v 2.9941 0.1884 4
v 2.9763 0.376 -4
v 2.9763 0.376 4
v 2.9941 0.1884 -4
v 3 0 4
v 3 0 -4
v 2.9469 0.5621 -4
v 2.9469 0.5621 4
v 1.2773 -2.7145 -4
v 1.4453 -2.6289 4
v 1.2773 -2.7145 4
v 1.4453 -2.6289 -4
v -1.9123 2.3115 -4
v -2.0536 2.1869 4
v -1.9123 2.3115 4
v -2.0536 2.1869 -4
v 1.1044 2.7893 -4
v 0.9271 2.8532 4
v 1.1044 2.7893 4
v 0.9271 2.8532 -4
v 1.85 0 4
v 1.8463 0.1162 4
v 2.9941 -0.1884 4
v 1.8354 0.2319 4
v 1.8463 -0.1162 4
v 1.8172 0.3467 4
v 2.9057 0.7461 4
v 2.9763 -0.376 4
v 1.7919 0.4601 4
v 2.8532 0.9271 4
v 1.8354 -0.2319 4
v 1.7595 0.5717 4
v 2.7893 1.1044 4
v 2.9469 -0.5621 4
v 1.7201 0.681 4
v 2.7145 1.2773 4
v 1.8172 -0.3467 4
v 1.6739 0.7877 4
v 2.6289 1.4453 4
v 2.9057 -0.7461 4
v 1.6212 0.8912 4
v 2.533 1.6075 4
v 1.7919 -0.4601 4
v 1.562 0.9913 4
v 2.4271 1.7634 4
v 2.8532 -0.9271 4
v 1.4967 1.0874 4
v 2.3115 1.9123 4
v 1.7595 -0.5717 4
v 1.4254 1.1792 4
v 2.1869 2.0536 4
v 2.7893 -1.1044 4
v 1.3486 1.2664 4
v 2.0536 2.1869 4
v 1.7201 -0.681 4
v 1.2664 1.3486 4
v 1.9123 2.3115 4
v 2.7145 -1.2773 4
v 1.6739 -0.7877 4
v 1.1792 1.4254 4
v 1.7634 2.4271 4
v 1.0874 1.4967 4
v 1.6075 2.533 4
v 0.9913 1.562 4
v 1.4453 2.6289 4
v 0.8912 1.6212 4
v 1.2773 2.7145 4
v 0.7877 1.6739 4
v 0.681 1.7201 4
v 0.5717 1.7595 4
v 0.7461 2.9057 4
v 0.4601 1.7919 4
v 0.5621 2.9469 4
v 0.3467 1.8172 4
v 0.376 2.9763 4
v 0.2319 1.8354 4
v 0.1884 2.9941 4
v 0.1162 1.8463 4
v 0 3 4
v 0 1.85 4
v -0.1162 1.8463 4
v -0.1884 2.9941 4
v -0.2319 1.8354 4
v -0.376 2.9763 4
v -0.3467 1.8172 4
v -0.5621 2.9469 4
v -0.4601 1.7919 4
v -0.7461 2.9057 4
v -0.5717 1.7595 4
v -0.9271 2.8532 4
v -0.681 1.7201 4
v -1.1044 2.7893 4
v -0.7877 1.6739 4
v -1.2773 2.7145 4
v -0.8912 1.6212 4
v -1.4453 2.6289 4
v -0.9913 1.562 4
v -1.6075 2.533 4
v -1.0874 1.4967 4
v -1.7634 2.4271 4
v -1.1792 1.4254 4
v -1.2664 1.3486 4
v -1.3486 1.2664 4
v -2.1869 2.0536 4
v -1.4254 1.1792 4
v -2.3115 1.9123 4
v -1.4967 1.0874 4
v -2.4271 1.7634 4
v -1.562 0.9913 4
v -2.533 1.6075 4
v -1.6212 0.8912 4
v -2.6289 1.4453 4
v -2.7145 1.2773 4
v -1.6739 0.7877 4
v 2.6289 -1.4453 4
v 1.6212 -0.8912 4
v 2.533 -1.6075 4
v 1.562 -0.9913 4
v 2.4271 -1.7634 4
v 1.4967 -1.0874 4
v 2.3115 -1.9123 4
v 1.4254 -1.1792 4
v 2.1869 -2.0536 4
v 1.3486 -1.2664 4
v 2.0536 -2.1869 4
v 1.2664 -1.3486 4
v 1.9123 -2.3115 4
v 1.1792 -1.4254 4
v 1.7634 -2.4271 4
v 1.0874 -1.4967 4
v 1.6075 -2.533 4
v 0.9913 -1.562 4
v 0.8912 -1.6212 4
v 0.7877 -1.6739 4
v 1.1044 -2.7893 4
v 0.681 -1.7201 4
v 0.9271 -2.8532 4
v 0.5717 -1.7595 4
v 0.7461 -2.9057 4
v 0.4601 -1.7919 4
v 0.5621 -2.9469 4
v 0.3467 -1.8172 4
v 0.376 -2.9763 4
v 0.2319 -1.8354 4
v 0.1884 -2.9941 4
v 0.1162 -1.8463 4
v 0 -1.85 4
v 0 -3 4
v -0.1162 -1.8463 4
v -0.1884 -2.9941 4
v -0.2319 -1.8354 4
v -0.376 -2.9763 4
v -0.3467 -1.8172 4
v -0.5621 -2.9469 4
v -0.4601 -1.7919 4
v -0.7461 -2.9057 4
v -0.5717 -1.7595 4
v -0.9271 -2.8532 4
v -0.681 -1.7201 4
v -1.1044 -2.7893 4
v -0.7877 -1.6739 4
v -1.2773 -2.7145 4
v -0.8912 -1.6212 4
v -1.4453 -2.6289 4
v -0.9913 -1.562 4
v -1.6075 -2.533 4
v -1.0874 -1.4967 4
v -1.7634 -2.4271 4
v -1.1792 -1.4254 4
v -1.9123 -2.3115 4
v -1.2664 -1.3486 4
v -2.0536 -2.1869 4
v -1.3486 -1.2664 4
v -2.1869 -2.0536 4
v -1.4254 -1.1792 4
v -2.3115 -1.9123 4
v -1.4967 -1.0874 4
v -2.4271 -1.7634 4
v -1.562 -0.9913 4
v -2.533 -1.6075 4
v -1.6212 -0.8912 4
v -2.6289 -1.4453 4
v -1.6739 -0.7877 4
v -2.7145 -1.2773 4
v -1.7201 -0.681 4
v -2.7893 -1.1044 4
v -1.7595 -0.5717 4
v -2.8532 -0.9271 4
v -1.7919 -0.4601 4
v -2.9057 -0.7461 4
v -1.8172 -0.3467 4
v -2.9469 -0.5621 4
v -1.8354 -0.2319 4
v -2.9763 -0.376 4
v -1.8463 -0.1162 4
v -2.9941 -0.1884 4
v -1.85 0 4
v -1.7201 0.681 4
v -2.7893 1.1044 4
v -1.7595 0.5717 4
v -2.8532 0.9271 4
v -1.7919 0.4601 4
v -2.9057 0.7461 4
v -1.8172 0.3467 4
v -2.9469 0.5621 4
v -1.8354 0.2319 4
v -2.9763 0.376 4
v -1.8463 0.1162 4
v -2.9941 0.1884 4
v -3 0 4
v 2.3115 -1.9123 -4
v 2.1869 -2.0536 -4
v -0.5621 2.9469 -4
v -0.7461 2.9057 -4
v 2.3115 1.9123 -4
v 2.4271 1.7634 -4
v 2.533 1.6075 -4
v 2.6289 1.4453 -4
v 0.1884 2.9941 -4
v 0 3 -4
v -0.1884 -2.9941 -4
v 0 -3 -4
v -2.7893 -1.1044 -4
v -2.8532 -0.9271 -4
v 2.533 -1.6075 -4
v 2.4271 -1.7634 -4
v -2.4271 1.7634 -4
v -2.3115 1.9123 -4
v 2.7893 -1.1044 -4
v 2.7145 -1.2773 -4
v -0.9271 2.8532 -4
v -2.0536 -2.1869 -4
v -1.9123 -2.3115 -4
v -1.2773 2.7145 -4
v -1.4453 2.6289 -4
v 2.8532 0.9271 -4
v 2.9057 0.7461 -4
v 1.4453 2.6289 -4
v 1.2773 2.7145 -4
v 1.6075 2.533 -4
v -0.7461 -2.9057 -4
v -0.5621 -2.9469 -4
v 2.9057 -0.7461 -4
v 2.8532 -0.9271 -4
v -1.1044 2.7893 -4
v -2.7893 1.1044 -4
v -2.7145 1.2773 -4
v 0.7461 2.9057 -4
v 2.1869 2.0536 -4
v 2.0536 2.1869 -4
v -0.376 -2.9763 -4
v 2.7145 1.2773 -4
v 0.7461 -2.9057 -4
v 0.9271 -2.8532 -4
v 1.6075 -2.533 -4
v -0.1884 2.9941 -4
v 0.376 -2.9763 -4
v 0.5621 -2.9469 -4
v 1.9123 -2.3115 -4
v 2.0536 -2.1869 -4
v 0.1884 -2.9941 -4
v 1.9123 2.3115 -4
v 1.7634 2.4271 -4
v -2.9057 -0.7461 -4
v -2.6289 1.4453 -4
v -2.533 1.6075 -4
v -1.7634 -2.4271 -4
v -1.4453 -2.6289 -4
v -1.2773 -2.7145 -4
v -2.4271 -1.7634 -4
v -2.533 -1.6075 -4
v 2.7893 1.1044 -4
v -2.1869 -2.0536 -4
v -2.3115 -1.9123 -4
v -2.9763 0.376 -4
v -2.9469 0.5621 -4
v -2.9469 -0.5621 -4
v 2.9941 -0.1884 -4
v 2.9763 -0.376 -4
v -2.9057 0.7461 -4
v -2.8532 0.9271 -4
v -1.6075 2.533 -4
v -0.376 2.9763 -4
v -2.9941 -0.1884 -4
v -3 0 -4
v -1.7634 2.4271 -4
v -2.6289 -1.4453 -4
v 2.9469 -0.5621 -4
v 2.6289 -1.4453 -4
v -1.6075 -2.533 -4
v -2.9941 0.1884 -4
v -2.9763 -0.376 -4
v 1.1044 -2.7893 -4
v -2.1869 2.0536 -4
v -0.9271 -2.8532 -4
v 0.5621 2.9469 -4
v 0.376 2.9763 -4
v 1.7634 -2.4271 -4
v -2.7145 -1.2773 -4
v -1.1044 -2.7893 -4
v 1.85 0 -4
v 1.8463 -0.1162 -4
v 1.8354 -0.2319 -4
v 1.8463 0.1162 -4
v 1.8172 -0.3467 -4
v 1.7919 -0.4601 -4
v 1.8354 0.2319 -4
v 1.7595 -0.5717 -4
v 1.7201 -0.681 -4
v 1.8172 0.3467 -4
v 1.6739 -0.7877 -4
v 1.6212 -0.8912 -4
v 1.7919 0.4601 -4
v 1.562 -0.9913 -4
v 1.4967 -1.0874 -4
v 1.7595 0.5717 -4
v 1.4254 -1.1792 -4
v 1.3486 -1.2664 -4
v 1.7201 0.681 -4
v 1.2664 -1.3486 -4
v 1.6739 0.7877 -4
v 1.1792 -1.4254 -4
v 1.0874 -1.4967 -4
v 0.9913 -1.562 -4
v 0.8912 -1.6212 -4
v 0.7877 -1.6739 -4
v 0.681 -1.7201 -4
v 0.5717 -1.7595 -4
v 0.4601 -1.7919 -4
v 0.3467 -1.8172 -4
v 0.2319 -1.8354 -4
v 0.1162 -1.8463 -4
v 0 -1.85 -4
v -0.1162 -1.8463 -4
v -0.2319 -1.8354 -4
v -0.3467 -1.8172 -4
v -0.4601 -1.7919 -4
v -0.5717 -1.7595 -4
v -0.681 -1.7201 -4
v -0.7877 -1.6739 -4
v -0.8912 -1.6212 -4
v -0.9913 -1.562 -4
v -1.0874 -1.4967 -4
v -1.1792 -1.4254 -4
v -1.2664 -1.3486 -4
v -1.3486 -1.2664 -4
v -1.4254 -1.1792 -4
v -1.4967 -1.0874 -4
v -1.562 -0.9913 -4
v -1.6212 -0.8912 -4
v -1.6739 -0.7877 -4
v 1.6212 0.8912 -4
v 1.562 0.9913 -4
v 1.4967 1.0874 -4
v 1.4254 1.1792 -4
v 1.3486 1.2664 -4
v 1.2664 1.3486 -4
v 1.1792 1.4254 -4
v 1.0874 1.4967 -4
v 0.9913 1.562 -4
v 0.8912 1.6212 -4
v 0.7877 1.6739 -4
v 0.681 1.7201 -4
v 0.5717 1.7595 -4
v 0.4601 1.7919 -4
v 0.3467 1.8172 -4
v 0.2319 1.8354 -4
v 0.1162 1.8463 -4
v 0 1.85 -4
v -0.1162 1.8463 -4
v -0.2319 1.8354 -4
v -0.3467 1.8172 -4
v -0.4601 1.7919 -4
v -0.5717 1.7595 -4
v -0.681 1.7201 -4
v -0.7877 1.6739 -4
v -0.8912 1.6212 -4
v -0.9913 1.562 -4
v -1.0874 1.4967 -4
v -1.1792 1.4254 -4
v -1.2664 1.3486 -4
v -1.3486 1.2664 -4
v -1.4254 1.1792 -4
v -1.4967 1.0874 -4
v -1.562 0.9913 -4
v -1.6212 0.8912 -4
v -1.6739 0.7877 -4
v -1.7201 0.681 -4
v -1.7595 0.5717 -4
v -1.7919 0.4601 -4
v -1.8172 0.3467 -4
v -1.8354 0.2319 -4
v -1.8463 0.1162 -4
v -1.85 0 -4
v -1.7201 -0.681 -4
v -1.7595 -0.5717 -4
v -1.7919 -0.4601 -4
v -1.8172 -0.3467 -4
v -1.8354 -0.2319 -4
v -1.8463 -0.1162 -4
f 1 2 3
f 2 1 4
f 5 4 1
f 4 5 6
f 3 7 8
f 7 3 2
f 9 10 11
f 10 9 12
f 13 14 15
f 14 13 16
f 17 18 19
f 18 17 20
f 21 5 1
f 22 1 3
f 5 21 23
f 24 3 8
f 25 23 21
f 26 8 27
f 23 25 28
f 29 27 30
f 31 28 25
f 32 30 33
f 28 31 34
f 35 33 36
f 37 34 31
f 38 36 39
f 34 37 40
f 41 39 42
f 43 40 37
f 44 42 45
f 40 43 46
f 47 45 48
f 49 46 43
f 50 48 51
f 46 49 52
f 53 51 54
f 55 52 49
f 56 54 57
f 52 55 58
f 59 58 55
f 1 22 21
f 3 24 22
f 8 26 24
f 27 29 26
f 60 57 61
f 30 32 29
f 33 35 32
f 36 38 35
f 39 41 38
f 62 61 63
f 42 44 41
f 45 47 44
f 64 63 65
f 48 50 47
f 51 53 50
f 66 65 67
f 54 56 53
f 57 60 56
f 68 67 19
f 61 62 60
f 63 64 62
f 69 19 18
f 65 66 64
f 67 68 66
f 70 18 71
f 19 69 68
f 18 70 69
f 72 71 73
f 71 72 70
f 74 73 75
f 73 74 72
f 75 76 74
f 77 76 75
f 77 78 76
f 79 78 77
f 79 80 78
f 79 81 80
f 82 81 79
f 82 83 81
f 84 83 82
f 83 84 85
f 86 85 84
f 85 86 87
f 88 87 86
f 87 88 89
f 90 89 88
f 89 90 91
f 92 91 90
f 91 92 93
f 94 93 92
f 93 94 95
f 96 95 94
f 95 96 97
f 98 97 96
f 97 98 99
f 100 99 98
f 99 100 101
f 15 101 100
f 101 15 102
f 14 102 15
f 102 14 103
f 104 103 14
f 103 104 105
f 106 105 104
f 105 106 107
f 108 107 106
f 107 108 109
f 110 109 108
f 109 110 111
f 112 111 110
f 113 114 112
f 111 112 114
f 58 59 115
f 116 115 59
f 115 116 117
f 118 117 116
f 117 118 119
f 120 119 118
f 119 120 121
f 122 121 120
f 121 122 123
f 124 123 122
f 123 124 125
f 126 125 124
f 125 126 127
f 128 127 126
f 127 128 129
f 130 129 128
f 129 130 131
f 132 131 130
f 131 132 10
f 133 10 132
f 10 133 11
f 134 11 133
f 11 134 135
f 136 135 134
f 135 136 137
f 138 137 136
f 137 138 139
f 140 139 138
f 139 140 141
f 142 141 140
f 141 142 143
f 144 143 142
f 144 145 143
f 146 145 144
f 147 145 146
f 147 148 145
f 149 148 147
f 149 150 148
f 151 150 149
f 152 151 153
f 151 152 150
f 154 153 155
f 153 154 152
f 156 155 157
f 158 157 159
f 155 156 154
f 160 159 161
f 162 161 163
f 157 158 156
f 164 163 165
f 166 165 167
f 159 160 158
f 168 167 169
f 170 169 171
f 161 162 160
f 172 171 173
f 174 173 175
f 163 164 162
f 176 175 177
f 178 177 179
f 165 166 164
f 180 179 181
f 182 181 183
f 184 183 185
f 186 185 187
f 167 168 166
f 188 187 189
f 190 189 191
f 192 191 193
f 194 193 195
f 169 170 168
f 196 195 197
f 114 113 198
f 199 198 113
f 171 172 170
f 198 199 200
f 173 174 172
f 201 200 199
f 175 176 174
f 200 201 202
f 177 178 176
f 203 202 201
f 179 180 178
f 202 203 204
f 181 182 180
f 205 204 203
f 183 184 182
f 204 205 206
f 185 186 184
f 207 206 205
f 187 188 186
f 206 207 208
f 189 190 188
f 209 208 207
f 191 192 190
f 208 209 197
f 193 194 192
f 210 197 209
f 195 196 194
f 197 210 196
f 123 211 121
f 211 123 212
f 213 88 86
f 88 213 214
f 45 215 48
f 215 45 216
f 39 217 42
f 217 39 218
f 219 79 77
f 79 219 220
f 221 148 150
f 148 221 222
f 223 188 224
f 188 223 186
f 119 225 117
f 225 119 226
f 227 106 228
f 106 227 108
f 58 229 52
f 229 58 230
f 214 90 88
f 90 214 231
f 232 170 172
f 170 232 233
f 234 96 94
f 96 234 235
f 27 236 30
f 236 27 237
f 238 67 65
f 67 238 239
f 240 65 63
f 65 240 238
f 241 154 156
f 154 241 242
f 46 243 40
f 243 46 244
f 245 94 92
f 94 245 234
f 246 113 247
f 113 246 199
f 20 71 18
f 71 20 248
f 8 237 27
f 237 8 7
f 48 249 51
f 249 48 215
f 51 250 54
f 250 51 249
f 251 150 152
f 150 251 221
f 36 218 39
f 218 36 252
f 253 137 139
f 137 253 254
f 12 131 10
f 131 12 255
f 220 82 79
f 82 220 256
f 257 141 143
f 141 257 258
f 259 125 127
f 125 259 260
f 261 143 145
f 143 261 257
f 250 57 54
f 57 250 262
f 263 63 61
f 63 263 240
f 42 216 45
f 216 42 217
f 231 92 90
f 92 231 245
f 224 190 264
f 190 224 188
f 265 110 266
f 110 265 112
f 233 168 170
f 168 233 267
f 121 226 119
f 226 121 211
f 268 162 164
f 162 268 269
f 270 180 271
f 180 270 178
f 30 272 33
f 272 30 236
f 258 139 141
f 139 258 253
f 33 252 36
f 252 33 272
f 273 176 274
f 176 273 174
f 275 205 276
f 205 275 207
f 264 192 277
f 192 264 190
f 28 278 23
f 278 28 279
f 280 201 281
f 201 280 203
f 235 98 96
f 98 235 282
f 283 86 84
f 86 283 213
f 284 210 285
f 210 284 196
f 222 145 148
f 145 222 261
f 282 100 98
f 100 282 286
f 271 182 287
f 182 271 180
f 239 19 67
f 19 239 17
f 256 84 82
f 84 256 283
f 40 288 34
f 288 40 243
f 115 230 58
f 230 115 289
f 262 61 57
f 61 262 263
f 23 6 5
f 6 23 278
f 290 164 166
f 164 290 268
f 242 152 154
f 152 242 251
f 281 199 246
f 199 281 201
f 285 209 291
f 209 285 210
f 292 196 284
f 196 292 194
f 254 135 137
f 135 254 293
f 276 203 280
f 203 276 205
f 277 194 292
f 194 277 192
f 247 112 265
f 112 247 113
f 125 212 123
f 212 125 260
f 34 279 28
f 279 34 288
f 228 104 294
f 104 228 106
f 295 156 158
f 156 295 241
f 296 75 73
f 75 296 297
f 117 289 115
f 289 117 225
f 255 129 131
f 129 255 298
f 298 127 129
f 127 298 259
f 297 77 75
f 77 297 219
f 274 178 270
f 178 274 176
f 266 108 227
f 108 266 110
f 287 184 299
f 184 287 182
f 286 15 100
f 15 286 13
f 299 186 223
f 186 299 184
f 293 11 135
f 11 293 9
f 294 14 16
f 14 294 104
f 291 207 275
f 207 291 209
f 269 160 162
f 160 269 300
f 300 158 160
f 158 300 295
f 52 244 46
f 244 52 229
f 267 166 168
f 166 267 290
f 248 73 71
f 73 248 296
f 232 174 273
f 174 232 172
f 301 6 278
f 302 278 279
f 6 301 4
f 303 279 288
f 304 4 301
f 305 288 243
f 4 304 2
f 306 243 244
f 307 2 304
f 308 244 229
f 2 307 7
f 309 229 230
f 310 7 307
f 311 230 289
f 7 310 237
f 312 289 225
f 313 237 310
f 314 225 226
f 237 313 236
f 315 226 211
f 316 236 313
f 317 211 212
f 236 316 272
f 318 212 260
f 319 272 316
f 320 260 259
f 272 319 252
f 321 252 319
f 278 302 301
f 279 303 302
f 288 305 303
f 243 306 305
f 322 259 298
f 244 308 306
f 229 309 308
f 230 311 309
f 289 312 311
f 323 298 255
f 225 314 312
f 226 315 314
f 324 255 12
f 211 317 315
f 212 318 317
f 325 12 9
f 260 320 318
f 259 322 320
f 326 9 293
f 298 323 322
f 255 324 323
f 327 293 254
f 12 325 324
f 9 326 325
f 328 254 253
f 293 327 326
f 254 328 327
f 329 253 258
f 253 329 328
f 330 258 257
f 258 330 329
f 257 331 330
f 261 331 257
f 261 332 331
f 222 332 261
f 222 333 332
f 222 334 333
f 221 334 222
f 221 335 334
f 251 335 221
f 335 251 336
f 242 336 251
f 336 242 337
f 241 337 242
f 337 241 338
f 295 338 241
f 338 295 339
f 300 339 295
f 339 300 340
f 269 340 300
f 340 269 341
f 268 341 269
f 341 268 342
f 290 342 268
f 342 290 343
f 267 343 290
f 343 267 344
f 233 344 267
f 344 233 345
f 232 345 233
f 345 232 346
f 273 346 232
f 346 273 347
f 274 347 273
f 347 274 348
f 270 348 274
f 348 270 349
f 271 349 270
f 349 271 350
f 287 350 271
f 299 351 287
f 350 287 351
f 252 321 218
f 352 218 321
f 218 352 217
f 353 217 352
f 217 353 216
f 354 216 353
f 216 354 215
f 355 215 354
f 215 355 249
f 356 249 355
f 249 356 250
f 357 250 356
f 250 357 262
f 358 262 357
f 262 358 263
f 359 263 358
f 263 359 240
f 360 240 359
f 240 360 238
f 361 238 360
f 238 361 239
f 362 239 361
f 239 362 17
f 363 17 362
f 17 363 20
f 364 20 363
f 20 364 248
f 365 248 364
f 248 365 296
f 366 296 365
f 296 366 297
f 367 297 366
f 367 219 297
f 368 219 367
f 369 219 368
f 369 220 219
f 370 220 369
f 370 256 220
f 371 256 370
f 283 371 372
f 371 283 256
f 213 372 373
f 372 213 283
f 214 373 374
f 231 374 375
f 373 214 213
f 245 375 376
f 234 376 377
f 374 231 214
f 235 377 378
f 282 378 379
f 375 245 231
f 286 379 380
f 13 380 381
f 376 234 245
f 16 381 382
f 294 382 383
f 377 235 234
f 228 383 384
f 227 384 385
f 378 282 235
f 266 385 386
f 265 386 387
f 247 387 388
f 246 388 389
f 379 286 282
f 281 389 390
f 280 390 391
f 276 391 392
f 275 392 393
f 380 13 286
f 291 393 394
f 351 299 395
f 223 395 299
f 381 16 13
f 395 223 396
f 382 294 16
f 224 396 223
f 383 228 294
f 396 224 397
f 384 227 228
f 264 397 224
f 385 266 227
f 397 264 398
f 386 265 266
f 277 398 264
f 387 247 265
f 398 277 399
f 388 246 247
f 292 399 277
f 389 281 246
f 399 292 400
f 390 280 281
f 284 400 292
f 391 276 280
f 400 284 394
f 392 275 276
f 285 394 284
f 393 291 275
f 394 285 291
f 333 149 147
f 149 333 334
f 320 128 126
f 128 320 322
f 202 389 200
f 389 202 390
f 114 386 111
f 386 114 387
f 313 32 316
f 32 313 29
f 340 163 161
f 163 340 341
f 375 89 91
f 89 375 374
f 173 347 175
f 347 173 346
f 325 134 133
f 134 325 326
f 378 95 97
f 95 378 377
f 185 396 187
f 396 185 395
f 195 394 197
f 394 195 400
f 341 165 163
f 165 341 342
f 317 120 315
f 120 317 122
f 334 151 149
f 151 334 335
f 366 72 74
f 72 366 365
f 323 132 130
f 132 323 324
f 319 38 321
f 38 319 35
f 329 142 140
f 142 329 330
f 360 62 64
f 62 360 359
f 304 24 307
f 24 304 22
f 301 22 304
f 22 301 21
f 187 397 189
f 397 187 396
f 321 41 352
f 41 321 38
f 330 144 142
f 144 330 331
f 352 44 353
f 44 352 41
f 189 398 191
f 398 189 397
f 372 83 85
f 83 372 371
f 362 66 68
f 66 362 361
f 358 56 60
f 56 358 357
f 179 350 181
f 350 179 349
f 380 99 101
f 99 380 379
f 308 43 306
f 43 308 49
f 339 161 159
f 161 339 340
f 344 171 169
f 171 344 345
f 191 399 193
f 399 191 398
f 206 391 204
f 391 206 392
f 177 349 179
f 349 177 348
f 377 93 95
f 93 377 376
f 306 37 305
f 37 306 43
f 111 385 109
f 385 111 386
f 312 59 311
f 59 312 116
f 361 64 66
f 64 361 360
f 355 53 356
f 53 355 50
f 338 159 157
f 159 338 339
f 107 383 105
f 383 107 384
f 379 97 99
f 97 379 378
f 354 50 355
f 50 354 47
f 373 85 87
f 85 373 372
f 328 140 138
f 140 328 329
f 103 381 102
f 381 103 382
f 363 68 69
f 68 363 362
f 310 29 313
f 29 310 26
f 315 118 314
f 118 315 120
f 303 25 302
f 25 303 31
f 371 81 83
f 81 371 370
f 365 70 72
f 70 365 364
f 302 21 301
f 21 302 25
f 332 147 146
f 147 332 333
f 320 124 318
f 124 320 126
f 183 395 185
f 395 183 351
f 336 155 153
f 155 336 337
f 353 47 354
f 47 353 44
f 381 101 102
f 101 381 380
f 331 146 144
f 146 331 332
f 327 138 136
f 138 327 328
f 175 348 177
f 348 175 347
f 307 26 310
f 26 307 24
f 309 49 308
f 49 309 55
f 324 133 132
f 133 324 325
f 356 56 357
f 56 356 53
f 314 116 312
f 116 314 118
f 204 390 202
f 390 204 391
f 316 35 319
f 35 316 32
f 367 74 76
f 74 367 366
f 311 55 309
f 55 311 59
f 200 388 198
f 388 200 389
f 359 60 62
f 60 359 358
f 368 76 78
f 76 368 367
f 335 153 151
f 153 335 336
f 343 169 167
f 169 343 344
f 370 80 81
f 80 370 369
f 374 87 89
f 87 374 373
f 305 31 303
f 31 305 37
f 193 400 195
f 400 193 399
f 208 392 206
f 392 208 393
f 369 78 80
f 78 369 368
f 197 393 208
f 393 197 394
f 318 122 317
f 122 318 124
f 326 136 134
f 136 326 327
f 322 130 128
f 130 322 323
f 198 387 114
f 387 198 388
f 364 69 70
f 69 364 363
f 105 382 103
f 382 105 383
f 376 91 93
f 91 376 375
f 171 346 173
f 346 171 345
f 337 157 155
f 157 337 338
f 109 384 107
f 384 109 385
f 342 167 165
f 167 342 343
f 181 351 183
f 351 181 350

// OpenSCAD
// M3 Stand Off
OUTER_DIAMETER = 6;
INNER_DIAMETER = 3.7;
HEIGHT = 8;
OFFSET=2;
RESOLUTION=100;

difference()
{
    cylinder(h=HEIGHT, d=OUTER_DIAMETER, center=true, $fn=RESOLUTION);
    cylinder(h=HEIGHT+OFFSET, d=INNER_DIAMETER, center=true, $fn=RESOLUTION);
}
